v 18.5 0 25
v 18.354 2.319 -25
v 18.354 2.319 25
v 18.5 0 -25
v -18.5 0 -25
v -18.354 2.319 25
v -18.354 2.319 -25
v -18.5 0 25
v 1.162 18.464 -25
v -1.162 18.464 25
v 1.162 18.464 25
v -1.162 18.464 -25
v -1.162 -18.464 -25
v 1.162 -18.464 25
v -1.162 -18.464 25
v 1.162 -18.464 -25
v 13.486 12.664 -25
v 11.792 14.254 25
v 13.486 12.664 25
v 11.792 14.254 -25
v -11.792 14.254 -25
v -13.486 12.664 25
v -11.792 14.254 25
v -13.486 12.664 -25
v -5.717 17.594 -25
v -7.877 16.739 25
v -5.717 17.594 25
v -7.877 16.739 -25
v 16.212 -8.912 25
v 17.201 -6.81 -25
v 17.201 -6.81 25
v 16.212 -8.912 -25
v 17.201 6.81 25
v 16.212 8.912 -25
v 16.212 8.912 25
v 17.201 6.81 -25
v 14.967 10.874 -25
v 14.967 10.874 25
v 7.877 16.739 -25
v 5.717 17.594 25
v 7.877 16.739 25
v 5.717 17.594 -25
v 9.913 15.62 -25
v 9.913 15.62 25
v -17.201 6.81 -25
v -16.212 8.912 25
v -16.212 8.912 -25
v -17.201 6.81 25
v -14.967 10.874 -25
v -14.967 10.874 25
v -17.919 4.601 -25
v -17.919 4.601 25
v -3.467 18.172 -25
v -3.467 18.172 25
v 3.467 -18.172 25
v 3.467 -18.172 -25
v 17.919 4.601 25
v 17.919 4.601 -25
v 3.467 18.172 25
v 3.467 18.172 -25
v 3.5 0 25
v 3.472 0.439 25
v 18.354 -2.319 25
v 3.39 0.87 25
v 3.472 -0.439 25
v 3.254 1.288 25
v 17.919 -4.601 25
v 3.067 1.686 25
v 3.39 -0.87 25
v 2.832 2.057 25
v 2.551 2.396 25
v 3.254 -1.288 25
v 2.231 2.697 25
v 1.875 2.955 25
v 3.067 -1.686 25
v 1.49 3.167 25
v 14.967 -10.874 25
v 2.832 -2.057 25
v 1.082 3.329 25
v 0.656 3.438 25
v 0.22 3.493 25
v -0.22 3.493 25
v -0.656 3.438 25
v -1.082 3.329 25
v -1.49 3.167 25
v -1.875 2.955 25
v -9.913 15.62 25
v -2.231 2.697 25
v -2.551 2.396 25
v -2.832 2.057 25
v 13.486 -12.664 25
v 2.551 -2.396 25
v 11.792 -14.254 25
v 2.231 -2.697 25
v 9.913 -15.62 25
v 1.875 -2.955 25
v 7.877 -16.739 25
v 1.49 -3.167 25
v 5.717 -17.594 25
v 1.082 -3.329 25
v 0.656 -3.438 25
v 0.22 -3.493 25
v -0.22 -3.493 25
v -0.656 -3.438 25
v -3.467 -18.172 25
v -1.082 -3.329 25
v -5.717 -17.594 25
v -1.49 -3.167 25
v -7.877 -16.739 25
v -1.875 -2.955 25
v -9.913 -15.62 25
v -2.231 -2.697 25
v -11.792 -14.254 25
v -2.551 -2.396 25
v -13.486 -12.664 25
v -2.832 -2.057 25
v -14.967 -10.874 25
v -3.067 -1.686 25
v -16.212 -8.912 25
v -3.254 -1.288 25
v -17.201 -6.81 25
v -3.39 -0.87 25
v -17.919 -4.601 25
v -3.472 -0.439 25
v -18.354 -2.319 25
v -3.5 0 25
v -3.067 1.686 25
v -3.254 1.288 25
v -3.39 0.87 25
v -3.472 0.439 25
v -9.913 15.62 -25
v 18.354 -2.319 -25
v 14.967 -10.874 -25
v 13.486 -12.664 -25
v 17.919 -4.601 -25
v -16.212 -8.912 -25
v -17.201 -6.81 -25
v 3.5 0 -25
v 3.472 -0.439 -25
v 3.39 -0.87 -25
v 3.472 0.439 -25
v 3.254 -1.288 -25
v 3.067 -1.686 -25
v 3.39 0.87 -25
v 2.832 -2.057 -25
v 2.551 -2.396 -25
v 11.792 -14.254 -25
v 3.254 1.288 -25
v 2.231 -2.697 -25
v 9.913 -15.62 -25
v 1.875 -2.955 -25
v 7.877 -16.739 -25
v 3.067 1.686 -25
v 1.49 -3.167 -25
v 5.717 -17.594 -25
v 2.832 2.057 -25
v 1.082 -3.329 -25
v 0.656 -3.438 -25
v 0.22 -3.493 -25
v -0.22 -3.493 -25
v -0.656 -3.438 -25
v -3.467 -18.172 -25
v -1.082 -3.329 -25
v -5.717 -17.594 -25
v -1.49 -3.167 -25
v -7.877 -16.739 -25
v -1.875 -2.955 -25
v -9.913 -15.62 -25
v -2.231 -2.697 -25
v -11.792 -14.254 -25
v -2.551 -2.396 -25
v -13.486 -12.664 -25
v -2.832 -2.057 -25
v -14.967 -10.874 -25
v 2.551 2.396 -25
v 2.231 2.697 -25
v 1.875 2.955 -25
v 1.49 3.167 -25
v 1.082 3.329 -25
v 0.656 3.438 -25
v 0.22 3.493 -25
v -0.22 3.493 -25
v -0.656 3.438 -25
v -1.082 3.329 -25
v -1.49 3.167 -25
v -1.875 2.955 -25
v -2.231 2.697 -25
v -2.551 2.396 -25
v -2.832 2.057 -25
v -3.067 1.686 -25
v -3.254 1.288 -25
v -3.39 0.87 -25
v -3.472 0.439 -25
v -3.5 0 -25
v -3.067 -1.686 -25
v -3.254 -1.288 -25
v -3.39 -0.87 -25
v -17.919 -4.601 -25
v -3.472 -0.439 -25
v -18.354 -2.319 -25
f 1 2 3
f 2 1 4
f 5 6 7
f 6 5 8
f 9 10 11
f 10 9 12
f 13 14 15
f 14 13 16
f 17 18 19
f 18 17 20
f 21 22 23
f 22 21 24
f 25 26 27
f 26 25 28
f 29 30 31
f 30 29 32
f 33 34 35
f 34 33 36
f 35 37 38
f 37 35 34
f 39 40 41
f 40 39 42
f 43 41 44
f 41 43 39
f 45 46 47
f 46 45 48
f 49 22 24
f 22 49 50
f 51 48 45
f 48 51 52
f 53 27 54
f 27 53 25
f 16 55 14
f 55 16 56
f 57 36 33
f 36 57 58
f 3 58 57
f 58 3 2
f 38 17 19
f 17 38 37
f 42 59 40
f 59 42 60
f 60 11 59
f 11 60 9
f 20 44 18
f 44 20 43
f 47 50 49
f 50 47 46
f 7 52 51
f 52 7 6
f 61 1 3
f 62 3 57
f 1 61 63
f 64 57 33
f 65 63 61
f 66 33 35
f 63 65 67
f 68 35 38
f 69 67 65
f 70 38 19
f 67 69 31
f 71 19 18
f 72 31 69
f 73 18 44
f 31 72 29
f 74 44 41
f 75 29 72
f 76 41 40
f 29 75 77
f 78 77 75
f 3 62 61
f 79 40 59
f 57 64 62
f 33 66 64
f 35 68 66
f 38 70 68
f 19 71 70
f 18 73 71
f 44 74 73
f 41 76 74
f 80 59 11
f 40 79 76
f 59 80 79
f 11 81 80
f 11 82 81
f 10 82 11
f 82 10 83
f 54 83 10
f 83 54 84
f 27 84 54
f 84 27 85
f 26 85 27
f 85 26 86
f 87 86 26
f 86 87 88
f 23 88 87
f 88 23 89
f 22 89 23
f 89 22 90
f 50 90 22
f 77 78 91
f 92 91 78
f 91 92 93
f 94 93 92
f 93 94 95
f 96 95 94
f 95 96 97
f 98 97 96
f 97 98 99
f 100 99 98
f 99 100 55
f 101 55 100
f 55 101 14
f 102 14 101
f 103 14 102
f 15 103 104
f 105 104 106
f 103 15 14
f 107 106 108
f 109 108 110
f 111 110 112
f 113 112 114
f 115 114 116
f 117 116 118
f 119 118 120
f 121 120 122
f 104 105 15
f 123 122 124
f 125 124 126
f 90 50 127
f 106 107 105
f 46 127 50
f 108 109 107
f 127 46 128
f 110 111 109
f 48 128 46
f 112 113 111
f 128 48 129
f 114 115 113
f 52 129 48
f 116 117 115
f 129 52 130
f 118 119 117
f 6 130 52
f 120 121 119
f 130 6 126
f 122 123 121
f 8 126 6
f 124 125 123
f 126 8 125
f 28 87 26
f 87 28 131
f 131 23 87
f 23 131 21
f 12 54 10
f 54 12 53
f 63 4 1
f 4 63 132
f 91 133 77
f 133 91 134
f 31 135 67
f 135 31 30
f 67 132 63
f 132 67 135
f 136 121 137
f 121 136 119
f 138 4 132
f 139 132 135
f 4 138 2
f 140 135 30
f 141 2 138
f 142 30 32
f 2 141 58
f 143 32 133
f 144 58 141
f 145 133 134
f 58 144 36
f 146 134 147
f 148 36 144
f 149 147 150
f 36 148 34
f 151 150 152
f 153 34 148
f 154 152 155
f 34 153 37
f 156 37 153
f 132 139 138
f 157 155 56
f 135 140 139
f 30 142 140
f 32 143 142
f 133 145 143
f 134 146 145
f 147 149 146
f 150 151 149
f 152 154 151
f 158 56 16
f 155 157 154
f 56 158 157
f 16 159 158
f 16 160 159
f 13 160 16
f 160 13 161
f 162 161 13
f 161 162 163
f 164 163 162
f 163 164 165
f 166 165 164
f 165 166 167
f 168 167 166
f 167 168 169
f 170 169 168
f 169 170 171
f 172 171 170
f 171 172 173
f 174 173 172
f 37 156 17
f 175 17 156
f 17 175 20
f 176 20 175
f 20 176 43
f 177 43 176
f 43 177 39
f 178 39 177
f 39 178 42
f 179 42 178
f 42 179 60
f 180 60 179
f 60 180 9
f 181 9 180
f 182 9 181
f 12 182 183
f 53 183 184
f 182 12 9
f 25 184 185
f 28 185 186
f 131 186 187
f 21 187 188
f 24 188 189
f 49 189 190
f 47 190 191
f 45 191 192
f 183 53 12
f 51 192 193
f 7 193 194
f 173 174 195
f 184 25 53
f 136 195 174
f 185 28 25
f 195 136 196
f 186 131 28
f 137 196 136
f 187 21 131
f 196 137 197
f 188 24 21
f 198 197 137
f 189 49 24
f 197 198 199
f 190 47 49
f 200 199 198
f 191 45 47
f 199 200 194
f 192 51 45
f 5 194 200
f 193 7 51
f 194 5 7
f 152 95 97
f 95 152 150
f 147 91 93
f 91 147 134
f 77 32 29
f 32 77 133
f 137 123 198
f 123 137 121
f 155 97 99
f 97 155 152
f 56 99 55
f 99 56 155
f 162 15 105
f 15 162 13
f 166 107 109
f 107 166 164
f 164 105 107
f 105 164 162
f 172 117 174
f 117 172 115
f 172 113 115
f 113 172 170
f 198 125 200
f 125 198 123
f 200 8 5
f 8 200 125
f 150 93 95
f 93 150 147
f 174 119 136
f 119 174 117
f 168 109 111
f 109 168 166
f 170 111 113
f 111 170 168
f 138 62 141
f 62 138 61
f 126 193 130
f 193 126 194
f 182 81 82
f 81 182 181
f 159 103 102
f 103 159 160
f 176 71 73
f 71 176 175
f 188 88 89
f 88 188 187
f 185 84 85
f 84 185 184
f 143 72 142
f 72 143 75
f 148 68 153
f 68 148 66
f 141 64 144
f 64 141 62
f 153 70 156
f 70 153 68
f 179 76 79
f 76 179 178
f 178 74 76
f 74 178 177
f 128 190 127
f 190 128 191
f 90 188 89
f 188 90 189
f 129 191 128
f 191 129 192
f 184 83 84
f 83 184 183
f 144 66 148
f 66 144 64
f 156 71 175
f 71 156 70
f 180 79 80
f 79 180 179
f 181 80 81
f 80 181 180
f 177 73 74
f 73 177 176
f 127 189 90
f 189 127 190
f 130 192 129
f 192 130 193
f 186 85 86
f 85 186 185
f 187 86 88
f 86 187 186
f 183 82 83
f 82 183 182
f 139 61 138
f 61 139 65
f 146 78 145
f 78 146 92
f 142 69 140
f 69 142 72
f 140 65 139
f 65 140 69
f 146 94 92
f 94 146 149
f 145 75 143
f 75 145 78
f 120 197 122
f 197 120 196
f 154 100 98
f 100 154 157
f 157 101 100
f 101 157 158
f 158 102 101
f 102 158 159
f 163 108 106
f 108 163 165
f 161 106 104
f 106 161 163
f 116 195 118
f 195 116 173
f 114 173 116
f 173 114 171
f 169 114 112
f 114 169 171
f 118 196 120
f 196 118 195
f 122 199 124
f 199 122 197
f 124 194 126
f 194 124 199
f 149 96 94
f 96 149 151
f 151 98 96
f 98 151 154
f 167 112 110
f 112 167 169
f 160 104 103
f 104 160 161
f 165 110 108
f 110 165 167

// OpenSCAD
$fn = 50;


difference() {
	union() {
		translate(v = [0, 0, -25.0000000000]) {
			cylinder(h = 50, r = 18.5000000000);
		}
	}
	union() {
		translate(v = [0, 0, -100.0000000000]) {
			cylinder(h = 200, r = 3.5000000000);
		}
	}
}
